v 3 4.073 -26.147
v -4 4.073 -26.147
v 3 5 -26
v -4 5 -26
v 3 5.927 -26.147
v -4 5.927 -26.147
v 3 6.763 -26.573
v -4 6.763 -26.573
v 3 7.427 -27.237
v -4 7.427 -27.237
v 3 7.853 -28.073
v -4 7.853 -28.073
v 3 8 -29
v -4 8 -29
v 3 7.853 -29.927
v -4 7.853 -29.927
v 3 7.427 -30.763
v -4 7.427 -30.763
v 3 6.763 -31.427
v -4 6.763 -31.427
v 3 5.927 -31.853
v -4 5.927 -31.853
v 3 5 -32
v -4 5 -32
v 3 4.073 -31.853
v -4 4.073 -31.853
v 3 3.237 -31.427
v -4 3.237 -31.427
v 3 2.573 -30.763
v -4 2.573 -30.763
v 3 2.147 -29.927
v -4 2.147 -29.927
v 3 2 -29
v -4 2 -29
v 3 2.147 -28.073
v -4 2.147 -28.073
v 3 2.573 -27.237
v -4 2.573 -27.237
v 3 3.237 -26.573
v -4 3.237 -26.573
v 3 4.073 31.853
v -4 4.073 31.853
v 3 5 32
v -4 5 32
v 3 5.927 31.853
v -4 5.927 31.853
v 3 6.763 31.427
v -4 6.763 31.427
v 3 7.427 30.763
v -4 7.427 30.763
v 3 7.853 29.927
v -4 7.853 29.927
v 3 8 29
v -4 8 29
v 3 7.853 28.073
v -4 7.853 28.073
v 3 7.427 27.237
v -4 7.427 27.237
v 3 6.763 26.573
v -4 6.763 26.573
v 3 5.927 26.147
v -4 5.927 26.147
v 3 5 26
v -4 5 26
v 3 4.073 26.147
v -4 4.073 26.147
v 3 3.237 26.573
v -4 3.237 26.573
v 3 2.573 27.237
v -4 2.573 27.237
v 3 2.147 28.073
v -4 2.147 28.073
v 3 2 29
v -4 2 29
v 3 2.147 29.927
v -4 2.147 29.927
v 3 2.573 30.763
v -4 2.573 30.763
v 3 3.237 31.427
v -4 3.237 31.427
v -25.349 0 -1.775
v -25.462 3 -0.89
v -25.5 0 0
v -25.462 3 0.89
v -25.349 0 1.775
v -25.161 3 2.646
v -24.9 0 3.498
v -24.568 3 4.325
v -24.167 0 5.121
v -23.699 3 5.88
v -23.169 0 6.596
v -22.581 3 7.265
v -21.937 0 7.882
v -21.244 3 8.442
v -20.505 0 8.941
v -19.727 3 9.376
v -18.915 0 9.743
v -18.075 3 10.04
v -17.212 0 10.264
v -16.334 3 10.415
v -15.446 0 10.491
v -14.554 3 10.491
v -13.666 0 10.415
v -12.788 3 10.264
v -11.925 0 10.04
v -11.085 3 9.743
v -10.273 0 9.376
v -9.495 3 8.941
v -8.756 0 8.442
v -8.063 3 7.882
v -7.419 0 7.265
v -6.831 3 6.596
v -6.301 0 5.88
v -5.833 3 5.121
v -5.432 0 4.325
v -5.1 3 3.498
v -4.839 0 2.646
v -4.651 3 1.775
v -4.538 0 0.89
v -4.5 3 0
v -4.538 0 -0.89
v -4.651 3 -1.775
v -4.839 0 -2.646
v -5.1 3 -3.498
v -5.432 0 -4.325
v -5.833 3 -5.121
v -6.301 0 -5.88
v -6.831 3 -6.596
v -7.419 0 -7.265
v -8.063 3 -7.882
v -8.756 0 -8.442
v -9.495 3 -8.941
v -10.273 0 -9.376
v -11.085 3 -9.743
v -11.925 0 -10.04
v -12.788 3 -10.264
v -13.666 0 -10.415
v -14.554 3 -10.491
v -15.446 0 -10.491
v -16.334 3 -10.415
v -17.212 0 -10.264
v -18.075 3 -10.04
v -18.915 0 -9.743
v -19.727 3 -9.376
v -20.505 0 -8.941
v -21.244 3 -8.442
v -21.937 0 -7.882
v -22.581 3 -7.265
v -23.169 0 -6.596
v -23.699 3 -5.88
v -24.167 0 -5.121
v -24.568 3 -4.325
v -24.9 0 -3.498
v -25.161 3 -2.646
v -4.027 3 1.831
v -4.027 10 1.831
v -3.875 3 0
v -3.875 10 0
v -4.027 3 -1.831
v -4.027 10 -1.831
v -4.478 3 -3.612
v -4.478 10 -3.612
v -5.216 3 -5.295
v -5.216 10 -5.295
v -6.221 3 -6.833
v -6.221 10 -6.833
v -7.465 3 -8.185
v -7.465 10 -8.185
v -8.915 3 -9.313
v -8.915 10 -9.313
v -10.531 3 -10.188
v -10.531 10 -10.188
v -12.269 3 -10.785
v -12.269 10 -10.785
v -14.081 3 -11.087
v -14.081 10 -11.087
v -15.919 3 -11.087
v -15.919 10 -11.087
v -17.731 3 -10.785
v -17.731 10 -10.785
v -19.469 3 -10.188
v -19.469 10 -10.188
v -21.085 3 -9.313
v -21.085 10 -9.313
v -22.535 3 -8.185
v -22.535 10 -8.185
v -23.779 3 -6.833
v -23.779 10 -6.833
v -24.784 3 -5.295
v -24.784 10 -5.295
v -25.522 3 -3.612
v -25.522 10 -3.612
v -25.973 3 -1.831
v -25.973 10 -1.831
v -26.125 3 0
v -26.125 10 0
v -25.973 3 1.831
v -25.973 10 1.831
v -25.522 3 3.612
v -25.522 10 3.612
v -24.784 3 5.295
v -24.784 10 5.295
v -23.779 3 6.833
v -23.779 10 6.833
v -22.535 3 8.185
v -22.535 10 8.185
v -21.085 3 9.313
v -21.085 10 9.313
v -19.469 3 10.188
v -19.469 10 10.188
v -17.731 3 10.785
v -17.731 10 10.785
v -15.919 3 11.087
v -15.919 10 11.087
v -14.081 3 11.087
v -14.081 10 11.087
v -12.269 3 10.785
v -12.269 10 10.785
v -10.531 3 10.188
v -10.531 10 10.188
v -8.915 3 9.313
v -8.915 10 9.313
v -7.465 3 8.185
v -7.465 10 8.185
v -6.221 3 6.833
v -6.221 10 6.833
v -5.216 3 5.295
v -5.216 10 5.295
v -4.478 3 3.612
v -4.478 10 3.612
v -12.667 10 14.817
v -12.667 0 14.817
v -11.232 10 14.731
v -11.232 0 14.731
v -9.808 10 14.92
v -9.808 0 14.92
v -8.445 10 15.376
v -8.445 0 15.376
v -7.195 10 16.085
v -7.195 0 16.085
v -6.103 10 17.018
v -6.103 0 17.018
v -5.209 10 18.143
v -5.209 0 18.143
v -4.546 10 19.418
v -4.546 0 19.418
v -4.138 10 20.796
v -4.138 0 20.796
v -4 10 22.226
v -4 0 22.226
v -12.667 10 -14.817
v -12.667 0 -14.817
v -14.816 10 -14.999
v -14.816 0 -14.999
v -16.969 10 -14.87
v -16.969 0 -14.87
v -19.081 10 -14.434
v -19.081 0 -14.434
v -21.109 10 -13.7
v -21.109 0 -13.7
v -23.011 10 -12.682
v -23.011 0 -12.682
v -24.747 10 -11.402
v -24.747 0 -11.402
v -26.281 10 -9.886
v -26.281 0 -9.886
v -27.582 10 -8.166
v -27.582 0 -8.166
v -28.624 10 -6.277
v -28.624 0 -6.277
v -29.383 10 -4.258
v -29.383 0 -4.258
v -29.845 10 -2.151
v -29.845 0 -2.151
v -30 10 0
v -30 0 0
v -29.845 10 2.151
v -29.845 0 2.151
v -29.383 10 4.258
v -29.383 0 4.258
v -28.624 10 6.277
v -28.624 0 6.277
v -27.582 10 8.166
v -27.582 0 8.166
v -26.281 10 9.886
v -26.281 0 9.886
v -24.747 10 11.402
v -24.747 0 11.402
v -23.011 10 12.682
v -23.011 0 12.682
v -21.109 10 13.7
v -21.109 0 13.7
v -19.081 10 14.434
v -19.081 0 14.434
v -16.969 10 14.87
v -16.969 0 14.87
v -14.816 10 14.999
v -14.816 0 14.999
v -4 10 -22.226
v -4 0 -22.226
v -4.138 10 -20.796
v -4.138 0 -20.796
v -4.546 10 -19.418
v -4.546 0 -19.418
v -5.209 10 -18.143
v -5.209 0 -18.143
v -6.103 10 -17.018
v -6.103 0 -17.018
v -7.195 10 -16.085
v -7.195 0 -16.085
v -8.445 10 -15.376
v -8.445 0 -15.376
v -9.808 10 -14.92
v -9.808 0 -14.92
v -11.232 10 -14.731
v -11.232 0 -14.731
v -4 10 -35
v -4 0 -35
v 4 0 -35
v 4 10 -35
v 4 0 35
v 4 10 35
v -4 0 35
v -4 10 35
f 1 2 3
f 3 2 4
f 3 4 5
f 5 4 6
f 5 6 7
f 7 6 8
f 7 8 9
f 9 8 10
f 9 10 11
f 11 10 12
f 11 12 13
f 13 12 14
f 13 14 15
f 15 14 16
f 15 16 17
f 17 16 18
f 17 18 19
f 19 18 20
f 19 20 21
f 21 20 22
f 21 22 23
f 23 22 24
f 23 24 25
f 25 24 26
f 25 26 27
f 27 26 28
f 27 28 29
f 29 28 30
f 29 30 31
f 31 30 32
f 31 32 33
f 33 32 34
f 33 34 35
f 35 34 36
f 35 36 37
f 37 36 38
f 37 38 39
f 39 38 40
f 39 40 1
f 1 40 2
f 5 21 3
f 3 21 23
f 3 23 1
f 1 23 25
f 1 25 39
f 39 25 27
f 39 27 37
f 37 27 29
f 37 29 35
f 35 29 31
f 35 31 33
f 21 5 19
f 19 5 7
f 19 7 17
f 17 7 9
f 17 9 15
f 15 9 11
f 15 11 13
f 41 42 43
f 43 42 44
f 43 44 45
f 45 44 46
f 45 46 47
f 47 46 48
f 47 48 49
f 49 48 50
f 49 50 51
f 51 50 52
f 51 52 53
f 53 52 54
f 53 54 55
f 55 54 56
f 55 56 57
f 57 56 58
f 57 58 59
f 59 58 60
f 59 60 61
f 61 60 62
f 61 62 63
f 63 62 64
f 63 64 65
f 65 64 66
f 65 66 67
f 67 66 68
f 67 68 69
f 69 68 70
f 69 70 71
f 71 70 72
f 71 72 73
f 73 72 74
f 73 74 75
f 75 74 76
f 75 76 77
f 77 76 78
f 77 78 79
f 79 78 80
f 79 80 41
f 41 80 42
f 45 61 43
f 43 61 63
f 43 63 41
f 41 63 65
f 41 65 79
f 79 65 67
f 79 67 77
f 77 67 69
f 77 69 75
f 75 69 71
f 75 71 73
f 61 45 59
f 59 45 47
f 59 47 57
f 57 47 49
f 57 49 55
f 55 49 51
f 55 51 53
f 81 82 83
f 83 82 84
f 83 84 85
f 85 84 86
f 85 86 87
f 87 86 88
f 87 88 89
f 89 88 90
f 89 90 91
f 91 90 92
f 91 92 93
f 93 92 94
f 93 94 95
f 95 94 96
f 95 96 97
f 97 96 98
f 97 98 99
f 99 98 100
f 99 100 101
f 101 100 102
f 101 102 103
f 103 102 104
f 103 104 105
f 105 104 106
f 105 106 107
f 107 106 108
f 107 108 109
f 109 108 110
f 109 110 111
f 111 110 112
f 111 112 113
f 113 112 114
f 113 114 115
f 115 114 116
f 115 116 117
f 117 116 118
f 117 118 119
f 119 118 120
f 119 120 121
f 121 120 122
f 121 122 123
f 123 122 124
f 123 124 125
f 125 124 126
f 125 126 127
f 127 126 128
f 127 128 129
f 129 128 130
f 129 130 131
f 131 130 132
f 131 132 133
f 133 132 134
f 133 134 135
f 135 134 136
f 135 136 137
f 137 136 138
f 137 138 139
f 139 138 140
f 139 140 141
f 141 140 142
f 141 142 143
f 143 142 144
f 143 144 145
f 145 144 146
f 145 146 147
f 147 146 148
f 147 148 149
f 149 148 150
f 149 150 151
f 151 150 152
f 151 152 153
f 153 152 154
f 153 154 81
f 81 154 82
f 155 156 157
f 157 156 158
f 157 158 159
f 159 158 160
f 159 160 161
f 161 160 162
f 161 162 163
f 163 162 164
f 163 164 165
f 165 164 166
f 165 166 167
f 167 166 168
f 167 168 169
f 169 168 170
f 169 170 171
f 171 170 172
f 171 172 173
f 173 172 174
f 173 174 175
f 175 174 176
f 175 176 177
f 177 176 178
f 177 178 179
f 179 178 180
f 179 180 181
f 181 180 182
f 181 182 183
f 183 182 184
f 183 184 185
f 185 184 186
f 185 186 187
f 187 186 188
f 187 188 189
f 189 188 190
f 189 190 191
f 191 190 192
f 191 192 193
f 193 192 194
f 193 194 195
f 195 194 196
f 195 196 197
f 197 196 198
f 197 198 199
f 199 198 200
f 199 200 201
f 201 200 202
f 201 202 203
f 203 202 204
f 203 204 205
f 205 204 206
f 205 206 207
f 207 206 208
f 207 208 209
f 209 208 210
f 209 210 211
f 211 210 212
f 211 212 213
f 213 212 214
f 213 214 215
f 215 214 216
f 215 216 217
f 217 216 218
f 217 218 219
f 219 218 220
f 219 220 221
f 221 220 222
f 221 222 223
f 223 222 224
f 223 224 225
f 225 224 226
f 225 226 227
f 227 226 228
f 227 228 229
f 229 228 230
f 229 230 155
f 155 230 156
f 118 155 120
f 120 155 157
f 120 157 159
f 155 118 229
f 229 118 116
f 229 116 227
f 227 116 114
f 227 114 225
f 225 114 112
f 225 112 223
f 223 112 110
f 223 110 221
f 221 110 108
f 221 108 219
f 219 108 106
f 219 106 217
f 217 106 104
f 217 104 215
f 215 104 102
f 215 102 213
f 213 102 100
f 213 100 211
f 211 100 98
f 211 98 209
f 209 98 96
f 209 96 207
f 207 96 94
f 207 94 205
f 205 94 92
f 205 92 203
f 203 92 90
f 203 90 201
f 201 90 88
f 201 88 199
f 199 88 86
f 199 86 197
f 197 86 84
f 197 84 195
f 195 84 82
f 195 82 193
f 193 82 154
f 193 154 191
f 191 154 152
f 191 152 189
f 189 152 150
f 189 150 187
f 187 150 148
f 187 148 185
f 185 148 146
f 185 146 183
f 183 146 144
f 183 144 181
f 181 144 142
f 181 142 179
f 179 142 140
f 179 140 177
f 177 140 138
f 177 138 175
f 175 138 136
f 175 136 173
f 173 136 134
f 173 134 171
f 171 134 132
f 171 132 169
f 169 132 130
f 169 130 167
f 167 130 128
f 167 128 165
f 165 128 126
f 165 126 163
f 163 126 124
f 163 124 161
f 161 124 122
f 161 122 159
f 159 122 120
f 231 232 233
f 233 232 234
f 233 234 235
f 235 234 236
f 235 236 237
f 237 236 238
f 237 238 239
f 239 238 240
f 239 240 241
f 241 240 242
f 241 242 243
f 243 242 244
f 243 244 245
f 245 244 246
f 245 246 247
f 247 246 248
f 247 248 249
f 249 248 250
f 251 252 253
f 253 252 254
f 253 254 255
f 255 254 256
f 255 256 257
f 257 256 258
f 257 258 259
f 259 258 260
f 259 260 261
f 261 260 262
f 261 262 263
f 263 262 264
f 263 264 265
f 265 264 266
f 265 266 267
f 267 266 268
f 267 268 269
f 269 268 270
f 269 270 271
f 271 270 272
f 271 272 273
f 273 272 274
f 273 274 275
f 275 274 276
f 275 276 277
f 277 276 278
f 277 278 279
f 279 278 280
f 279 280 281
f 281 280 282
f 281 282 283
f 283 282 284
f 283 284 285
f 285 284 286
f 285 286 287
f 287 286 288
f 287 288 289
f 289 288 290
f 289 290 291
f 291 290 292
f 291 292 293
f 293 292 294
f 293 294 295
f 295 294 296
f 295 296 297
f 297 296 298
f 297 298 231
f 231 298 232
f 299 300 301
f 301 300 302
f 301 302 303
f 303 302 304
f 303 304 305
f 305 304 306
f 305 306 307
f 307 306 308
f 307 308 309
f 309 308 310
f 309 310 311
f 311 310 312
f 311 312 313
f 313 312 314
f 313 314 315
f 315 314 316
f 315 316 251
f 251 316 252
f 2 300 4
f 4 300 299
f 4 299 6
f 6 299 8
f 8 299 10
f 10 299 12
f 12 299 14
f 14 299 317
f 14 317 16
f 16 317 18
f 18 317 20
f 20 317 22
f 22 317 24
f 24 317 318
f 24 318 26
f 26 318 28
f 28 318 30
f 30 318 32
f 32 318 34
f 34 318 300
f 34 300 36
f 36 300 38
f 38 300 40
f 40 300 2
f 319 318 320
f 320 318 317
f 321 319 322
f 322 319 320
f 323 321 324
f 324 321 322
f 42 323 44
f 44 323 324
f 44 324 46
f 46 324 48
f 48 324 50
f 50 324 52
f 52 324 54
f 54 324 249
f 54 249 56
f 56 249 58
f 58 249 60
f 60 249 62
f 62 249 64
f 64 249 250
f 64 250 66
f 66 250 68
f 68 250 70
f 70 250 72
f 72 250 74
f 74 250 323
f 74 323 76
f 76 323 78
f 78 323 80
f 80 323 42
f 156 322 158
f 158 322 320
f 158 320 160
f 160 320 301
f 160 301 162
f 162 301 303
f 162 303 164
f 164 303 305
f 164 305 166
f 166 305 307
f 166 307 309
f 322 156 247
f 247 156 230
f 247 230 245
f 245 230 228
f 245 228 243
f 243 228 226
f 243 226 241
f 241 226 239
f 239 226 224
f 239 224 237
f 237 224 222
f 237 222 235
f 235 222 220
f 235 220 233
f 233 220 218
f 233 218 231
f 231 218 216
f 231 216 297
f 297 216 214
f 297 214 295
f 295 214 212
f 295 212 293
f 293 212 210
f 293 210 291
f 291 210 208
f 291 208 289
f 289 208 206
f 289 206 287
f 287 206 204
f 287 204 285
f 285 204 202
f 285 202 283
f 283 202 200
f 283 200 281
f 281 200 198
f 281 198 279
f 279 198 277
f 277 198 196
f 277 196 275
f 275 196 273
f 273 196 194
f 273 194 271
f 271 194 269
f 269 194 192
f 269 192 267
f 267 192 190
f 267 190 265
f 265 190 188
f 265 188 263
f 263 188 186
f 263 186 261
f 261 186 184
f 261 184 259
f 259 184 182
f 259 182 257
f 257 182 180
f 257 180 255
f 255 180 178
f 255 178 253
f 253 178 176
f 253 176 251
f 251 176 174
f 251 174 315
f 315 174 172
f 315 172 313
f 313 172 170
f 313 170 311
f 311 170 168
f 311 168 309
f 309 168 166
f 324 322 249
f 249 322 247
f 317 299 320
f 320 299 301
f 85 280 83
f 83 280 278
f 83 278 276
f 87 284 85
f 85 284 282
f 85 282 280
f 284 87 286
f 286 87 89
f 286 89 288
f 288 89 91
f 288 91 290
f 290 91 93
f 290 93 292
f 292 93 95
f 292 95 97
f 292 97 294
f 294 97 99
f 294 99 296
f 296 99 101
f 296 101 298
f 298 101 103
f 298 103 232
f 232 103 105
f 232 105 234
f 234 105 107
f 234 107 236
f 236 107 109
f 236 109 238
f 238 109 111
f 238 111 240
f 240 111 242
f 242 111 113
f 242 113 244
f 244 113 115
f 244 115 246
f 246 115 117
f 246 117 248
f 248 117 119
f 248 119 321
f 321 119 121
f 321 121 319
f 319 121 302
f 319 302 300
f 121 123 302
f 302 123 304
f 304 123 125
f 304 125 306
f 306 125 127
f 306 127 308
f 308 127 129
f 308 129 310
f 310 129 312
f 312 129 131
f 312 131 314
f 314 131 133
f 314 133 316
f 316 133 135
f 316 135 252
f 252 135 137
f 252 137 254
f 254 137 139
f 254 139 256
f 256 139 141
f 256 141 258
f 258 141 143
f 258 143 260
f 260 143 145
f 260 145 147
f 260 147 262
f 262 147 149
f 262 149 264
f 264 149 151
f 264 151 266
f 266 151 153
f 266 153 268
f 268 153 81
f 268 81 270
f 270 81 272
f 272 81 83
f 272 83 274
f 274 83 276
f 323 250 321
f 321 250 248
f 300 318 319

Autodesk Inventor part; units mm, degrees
ref_plane "YZ Plane" through (0, 0, 0) normal (1, 0, 0) x (0, 1, 0)
ref_plane "XZ Plane" through (0, 0, 0) normal (0, 1, 0) x (-1, 0, 0)
ref_plane "XY Plane" through (0, 0, 0) normal (0, 0, 1) x (1, 0, 0)
sketch "Sketch1" plane through (0, 0, 0) normal (0, 1, 0) x (-1, 0, 0)
  line L0 (4, 35) -> (-4, 35)
  line L1 (-4, 35) -> (-4, -35)
  line L2 (-4, -35) -> (4, -35)
  line L3 (4, -35) -> (4, 35)
  line L4 (4, 35) -> (-4, -35) construction
  line L5 (-4, 35) -> (4, -35) construction
  circle A0 centre (15, 0) radius 15
  arc A1 (4, 22.2261) -> (12.6667, 14.8174) centre (11.5, 22.2261) ccw
  arc A2 (12.6667, -14.8174) -> (4, -22.2261) centre (11.5, -22.2261) ccw
  point P0 (0, 0)
  dimension "d0" = 8
  dimension "d1" = 70
  dimension "d2" = 30
  dimension "d3" = 15
  dimension "d6" = 15
  dimension "d7" = 7.5
  dimension "d9" = 0
  dimension "d10" = 15
extrude "Extrusion1" add sketch "Sketch1" along normal blind 10
sketch "Sketch2" plane through (0, 10, 0) normal (0, 1, 0) x (1, 0, 0)
  circle A0 centre (-15, 0) radius 11.125
  arc A1 (-12.6667, 14.8174) -> (-12.6667, -14.8174) centre (-15, 0) ccw projected
  point P0 (0, 0)
  dimension "d13" = 22.25
extrude "Extrusion2" cut sketch "Sketch2" against normal blind 7
sketch "Sketch3" plane through (-15, 3, 0) normal (0, 1, 0) x (1, 0, 0)
  circle A0 centre (0, 0) radius 10.5
  point P0 (15, 0)
  dimension "d16" = 21
extrude "Extrusion3" cut sketch "Sketch3" against normal blind 7
sketch "Sketch4" plane through (-4, 0, 22.2261) normal (-1, 0, 0) x (0, 0, 1)
  circle A0 centre (6.7739, 5) radius 3
  line L0 (0, 0) -> (12.7739, 0) projected
  line L1 (12.7739, 0) -> (12.7739, 10) projected
  circle A1 centre (-51.2261, 5) radius 3
  line L2 (-57.2261, 10) -> (-44.4522, 10) projected
  line L3 (-57.2261, 0) -> (-57.2261, 10) projected
  point P0 (-22.2261, 0)
  point P1 (6.3869, 0)
  dimension "d19" = 6
  dimension "d20" = 5
  dimension "d21" = 6
  dimension "d22" = 6
  dimension "d23" = 5
  dimension "d24" = 6
extrude "Extrusion4" cut sketch "Sketch4" against normal blind 7
properties part number "Bearing Holder"
